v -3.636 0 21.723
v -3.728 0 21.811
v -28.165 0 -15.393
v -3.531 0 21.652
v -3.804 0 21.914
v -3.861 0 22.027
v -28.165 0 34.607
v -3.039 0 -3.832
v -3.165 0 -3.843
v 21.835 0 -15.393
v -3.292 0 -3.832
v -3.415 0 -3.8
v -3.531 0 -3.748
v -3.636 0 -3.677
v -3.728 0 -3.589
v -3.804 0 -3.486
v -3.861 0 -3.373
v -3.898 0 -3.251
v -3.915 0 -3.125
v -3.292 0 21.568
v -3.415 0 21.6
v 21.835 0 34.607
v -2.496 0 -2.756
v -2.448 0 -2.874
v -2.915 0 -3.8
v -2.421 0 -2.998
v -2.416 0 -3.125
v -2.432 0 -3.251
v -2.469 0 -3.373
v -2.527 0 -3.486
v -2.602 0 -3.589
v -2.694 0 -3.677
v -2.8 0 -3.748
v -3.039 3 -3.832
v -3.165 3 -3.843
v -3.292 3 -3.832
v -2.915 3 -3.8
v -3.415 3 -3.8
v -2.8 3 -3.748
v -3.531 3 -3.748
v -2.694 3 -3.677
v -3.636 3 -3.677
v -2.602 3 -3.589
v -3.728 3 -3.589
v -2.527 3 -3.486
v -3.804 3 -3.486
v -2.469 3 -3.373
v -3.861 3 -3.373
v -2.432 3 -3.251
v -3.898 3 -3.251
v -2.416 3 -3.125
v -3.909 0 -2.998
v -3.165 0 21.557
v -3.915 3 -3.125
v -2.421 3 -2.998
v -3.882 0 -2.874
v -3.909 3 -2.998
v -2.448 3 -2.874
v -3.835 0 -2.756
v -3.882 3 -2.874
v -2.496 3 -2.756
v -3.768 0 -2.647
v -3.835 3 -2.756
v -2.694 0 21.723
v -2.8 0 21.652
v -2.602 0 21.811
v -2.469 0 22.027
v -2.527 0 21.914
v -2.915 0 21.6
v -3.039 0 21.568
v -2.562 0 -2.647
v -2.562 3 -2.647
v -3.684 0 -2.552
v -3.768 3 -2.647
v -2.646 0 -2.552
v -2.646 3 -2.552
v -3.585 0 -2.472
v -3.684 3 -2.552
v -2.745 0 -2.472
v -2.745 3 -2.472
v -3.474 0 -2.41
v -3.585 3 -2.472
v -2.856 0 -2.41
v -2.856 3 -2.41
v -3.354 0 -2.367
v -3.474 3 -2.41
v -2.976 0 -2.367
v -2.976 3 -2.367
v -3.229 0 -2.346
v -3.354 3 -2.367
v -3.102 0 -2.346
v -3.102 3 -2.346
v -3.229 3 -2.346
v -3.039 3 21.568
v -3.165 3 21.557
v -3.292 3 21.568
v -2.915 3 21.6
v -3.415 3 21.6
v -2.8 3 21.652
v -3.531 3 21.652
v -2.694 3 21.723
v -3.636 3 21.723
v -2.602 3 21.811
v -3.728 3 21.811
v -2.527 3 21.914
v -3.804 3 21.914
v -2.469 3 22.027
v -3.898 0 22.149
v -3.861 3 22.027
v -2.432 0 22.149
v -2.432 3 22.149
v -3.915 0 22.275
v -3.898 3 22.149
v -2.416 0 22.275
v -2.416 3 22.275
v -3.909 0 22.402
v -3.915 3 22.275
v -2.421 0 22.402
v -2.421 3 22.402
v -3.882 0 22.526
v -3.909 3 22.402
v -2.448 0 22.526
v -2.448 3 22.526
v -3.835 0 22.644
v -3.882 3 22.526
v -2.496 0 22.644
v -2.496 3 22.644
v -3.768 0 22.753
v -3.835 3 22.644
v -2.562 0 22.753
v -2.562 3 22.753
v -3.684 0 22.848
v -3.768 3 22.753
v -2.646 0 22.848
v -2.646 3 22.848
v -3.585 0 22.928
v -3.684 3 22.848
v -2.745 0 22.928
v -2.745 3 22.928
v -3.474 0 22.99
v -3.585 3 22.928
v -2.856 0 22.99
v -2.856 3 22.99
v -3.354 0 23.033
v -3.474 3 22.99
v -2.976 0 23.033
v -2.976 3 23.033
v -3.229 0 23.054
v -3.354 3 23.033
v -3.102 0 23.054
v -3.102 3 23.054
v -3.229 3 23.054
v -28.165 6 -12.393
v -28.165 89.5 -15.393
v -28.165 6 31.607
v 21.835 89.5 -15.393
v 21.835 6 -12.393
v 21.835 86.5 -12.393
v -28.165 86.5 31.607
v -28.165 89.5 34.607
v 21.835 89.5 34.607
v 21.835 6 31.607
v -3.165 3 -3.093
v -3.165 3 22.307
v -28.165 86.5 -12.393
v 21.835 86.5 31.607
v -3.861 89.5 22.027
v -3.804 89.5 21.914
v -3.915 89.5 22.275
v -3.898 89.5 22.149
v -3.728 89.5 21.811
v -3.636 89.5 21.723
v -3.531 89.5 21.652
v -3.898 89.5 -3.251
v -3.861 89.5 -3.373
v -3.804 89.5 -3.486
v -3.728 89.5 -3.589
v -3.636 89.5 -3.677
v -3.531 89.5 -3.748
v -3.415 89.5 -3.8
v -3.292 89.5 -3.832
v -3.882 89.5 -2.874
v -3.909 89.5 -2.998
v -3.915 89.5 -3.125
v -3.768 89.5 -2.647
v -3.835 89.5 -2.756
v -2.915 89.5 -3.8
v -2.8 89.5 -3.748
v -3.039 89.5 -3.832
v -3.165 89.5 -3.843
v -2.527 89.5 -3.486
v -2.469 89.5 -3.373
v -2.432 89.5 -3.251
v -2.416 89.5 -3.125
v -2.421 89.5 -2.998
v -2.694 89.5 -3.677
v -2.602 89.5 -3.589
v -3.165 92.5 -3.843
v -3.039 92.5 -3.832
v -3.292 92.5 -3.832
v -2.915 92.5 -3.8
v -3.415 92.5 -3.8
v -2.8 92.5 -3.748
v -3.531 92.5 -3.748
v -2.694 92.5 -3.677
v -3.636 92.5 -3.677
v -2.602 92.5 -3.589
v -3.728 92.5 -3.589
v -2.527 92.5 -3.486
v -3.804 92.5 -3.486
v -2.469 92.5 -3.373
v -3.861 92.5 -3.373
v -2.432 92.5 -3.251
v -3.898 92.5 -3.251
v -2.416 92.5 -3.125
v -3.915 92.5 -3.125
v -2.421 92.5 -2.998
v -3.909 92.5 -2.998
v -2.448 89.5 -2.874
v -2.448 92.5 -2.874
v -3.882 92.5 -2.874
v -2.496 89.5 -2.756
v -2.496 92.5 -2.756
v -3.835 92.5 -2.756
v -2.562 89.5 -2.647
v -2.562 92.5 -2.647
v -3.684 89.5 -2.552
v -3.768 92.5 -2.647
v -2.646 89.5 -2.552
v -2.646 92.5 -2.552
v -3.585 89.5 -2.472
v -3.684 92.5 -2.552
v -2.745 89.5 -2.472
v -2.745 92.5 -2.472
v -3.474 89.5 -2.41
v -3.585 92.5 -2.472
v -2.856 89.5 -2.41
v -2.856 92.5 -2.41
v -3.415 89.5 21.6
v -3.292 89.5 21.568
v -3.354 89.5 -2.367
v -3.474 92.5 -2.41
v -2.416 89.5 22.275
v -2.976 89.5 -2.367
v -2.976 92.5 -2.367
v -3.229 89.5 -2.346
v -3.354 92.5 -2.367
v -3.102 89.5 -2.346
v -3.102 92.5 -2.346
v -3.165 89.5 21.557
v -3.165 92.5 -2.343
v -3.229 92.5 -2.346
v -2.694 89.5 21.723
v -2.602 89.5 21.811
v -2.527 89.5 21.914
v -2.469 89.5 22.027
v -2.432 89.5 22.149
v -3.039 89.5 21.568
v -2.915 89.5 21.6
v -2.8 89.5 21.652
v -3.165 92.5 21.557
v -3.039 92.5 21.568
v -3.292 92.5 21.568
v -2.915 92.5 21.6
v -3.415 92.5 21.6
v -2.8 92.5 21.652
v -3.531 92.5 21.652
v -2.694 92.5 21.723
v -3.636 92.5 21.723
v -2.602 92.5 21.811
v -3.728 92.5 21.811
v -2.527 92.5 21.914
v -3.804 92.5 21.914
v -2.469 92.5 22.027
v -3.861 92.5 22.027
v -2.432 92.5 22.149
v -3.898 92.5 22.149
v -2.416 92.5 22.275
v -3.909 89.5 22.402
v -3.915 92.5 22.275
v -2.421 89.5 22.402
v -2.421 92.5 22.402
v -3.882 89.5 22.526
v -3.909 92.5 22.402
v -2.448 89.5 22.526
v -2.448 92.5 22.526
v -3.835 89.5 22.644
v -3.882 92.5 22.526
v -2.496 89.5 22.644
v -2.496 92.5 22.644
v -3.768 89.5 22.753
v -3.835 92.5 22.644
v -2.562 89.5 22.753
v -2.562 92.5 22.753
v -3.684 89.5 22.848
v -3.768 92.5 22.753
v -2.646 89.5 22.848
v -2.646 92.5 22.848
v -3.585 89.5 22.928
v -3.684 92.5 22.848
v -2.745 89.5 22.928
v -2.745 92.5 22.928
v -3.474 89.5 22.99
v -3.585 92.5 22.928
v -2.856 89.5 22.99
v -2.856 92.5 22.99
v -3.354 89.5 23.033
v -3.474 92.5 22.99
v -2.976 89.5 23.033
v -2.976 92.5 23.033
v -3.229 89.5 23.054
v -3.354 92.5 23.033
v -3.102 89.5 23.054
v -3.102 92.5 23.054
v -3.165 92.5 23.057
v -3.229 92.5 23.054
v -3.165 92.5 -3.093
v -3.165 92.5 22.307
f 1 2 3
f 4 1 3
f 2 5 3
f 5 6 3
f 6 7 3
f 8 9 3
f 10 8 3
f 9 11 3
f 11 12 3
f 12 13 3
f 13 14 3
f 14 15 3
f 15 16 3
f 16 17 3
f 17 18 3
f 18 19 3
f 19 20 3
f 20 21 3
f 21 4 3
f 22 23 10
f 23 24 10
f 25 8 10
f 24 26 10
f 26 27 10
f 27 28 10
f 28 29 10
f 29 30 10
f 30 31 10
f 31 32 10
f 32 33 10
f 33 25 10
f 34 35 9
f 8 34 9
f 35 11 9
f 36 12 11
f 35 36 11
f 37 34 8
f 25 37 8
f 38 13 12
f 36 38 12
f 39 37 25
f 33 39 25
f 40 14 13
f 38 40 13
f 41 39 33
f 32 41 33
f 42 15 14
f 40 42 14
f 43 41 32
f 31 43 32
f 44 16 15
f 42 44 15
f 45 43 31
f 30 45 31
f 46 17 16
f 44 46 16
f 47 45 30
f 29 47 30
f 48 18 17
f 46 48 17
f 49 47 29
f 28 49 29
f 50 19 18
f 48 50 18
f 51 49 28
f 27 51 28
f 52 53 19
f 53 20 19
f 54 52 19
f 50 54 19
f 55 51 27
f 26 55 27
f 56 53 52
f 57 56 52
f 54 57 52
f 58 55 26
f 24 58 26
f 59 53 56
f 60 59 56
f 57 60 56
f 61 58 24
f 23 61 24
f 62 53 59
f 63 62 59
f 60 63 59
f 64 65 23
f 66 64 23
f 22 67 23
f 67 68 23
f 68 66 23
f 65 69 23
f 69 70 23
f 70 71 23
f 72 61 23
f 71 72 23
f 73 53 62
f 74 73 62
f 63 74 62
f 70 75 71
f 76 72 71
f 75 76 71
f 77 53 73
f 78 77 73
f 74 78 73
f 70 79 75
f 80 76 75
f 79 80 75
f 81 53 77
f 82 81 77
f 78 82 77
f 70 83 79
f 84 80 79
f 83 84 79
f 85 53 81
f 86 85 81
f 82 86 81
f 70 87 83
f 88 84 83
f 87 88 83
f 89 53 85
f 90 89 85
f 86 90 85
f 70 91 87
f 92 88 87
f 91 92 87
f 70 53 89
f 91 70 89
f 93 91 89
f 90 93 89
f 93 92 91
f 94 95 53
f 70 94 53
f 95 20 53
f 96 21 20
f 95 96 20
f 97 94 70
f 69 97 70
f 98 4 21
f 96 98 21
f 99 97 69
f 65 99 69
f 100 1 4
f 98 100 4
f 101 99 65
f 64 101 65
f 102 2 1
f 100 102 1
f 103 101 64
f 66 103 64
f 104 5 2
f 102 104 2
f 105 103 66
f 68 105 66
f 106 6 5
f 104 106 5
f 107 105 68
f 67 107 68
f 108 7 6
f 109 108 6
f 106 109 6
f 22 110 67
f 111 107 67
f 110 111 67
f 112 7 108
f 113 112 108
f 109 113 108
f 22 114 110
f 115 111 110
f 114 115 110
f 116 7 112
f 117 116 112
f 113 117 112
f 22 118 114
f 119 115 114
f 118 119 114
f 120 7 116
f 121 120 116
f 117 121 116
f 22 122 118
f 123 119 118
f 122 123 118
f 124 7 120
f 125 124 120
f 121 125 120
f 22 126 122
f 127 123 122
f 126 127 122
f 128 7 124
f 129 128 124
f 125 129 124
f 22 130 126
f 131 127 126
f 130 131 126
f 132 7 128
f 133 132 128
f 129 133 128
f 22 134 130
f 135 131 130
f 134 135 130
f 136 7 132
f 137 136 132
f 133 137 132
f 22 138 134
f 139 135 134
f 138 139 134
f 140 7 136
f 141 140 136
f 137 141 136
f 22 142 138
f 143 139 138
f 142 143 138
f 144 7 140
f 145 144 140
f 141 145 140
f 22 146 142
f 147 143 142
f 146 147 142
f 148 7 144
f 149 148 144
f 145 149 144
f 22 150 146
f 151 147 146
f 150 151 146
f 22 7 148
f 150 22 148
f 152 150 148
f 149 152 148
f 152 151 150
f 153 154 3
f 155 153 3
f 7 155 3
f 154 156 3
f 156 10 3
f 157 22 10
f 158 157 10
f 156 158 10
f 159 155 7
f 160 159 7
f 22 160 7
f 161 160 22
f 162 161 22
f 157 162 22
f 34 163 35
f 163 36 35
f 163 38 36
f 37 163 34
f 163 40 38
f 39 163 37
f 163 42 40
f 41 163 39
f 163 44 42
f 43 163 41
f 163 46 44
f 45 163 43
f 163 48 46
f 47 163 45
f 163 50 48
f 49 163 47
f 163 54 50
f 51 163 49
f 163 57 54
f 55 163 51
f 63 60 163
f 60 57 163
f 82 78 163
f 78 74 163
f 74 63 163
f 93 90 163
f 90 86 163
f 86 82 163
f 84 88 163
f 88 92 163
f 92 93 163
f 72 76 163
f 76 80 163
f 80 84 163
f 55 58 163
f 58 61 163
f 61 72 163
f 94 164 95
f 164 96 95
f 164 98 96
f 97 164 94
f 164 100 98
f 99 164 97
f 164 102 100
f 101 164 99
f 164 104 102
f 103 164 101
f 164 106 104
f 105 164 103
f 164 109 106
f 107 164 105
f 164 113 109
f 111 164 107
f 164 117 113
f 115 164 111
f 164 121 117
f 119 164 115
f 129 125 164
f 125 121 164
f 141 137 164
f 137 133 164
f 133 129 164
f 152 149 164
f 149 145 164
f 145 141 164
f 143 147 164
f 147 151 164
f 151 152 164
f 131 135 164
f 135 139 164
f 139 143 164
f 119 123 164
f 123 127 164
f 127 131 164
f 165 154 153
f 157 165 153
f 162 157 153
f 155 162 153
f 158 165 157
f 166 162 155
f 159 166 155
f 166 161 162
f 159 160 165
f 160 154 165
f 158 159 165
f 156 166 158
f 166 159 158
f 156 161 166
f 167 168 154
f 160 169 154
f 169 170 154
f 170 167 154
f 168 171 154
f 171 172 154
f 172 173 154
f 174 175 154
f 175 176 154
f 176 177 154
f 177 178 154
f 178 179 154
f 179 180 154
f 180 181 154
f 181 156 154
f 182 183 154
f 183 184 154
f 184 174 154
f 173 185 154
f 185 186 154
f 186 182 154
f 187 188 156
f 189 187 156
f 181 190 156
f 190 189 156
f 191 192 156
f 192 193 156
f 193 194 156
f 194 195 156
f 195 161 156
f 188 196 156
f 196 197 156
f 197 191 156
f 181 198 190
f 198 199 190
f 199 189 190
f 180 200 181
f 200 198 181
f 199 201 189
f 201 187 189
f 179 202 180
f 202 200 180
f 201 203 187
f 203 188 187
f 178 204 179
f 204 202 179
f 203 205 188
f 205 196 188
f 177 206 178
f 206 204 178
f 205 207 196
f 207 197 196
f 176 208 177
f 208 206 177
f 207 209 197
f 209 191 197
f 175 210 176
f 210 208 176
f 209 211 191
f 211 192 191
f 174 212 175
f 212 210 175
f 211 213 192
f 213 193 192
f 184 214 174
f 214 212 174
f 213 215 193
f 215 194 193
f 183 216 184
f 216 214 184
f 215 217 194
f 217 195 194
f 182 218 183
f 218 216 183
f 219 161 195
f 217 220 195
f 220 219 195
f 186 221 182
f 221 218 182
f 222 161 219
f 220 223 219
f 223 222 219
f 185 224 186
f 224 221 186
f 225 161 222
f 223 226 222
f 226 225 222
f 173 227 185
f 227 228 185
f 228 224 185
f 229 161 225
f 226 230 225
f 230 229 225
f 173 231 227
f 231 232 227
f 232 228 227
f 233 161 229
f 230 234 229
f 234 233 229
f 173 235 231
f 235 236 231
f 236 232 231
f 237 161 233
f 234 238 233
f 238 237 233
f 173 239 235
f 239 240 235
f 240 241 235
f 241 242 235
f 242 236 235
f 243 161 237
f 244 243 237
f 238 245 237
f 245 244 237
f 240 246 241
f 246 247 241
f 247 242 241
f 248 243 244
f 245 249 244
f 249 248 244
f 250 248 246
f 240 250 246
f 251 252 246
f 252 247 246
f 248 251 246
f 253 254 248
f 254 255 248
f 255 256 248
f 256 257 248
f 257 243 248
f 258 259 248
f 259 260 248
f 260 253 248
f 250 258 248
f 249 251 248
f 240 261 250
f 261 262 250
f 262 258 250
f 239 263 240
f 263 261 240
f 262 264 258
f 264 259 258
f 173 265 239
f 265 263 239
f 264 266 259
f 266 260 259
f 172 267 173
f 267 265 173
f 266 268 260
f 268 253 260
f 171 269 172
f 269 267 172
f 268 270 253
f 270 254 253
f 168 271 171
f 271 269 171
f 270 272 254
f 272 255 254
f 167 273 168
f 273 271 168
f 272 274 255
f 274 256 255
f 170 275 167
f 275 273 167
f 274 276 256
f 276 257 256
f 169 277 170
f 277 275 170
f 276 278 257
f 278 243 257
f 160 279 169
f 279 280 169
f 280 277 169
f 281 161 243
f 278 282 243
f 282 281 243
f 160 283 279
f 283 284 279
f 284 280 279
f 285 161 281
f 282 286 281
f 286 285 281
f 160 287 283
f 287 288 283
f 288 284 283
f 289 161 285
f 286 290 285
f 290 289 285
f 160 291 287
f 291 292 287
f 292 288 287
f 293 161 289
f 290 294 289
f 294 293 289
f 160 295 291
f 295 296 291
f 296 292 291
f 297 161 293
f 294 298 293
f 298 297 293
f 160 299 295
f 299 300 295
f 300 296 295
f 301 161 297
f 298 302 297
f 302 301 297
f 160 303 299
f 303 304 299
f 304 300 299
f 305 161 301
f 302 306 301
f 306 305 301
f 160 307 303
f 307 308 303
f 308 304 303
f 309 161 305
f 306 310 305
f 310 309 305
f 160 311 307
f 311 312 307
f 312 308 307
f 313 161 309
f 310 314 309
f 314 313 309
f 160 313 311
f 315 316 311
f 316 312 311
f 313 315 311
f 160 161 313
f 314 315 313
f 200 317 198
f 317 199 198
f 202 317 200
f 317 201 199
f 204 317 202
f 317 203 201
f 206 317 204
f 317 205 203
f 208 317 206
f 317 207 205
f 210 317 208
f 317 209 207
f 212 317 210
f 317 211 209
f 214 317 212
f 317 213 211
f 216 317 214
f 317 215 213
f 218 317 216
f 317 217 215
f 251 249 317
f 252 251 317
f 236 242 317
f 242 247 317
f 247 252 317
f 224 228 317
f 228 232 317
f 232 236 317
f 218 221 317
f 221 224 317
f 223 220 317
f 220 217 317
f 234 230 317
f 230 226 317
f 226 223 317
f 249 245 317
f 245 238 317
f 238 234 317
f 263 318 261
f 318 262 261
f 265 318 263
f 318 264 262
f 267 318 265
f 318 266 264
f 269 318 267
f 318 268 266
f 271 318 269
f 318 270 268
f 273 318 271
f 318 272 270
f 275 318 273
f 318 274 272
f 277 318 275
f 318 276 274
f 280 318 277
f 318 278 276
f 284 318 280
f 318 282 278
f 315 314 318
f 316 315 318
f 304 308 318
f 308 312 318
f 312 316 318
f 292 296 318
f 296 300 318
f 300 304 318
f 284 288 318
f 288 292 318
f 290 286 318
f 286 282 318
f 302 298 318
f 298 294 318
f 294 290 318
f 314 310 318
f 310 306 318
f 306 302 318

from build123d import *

# Parameters (mm, degrees)
SKETCH1_W           = 50
SKETCH1_H           = 50
BOSS_EXTRUDE2_DEPTH = 89.5
SKETCH4_W           = 44
SKETCH4_H           = 80.5
CUT_EXTRUDE1_DEPTH  = 89.5
SKETCH5_R           = 0.75
CUT_EXTRUDE2_DEPTH  = 3
SKETCH6_R           = 0.75
BOSS_EXTRUDE4_DEPTH = 3


with BuildPart() as part:
    # Sketch1 → Boss-Extrude2 (new body)
    with BuildSketch(Plane(origin=(0, 0, 0), x_dir=(1, 0, 0), z_dir=(0, 1, 0))):
        with Locations((-3.165306342, -9.606735536)):
            Rectangle(SKETCH1_W, SKETCH1_H)
    extrude(amount=BOSS_EXTRUDE2_DEPTH)

    # Sketch4 → Cut-Extrude1 (cut)
    with BuildSketch(Plane(origin=(21.834693658, 0, 0), x_dir=(0, 0, -1), z_dir=(1, 0, 0))):
        with Locations((-9.606735536, 46.25)):
            Rectangle(SKETCH4_W, SKETCH4_H)
    extrude(amount=-CUT_EXTRUDE1_DEPTH, mode=Mode.SUBTRACT)

    # Sketch5 → Cut-Extrude2 (cut)
    with BuildSketch(Plane(origin=(0, 0, 0), x_dir=(-1, 0, 0), z_dir=(0, -1, 0))):
        with Locations(Location((3.165306342, -22.306735536, 0), (0, 0, 90))):
            Circle(SKETCH5_R)
        with Locations(Location((3.165306342, 3.093264464, 0), (0, 0, 90))):
            Circle(SKETCH5_R)
    extrude(amount=-CUT_EXTRUDE2_DEPTH, mode=Mode.SUBTRACT)

    # Sketch6 → Boss-Extrude4 (add)
    with BuildSketch(Plane(origin=(0, 89.5, 0), x_dir=(1, 0, 0), z_dir=(0, 1, 0))):
        with Locations(Location((-3.165306342, 3.093264464, 0), (0, 0, 90))):
            Circle(SKETCH6_R)
        with Locations(Location((-3.165306342, -22.306735536, 0), (0, 0, 90))):
            Circle(SKETCH6_R)
    extrude(amount=BOSS_EXTRUDE4_DEPTH)


solid = part.part
